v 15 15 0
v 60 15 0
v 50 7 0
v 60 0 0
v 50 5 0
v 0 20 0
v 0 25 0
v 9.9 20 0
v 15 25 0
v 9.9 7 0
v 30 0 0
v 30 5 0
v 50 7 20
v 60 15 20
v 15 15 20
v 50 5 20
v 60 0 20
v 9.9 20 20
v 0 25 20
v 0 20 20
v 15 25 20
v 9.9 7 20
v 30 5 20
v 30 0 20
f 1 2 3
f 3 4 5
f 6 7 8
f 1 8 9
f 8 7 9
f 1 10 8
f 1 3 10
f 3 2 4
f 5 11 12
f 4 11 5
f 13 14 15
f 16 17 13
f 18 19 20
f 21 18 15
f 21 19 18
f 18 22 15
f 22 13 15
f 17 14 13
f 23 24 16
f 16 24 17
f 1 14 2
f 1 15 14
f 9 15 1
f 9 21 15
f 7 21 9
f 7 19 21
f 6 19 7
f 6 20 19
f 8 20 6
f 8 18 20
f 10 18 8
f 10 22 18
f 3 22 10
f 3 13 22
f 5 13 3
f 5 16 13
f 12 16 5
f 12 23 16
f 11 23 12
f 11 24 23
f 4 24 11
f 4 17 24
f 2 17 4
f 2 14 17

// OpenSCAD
//Measurements
backgrasp = 20;
gap = 2;
inset = 40;
protrusion = 13;

//parameters
wingrasp = 10;
winhold = 5;
backhold = 5;
edge = 10;
o= .1;

linear_extrude(20) {
  difference() {
    square([inset + wingrasp + edge, winhold + protrusion + gap + backhold]);
    translate([-o,-o]) square([o+inset - backgrasp +wingrasp, o+backhold+o]);
    translate([-o, backhold]) square([o+inset+wingrasp, gap]);
    translate([-o, backhold]) square([wingrasp, gap+protrusion]);
    translate([15,15]) square([60,60]);
  }
}
